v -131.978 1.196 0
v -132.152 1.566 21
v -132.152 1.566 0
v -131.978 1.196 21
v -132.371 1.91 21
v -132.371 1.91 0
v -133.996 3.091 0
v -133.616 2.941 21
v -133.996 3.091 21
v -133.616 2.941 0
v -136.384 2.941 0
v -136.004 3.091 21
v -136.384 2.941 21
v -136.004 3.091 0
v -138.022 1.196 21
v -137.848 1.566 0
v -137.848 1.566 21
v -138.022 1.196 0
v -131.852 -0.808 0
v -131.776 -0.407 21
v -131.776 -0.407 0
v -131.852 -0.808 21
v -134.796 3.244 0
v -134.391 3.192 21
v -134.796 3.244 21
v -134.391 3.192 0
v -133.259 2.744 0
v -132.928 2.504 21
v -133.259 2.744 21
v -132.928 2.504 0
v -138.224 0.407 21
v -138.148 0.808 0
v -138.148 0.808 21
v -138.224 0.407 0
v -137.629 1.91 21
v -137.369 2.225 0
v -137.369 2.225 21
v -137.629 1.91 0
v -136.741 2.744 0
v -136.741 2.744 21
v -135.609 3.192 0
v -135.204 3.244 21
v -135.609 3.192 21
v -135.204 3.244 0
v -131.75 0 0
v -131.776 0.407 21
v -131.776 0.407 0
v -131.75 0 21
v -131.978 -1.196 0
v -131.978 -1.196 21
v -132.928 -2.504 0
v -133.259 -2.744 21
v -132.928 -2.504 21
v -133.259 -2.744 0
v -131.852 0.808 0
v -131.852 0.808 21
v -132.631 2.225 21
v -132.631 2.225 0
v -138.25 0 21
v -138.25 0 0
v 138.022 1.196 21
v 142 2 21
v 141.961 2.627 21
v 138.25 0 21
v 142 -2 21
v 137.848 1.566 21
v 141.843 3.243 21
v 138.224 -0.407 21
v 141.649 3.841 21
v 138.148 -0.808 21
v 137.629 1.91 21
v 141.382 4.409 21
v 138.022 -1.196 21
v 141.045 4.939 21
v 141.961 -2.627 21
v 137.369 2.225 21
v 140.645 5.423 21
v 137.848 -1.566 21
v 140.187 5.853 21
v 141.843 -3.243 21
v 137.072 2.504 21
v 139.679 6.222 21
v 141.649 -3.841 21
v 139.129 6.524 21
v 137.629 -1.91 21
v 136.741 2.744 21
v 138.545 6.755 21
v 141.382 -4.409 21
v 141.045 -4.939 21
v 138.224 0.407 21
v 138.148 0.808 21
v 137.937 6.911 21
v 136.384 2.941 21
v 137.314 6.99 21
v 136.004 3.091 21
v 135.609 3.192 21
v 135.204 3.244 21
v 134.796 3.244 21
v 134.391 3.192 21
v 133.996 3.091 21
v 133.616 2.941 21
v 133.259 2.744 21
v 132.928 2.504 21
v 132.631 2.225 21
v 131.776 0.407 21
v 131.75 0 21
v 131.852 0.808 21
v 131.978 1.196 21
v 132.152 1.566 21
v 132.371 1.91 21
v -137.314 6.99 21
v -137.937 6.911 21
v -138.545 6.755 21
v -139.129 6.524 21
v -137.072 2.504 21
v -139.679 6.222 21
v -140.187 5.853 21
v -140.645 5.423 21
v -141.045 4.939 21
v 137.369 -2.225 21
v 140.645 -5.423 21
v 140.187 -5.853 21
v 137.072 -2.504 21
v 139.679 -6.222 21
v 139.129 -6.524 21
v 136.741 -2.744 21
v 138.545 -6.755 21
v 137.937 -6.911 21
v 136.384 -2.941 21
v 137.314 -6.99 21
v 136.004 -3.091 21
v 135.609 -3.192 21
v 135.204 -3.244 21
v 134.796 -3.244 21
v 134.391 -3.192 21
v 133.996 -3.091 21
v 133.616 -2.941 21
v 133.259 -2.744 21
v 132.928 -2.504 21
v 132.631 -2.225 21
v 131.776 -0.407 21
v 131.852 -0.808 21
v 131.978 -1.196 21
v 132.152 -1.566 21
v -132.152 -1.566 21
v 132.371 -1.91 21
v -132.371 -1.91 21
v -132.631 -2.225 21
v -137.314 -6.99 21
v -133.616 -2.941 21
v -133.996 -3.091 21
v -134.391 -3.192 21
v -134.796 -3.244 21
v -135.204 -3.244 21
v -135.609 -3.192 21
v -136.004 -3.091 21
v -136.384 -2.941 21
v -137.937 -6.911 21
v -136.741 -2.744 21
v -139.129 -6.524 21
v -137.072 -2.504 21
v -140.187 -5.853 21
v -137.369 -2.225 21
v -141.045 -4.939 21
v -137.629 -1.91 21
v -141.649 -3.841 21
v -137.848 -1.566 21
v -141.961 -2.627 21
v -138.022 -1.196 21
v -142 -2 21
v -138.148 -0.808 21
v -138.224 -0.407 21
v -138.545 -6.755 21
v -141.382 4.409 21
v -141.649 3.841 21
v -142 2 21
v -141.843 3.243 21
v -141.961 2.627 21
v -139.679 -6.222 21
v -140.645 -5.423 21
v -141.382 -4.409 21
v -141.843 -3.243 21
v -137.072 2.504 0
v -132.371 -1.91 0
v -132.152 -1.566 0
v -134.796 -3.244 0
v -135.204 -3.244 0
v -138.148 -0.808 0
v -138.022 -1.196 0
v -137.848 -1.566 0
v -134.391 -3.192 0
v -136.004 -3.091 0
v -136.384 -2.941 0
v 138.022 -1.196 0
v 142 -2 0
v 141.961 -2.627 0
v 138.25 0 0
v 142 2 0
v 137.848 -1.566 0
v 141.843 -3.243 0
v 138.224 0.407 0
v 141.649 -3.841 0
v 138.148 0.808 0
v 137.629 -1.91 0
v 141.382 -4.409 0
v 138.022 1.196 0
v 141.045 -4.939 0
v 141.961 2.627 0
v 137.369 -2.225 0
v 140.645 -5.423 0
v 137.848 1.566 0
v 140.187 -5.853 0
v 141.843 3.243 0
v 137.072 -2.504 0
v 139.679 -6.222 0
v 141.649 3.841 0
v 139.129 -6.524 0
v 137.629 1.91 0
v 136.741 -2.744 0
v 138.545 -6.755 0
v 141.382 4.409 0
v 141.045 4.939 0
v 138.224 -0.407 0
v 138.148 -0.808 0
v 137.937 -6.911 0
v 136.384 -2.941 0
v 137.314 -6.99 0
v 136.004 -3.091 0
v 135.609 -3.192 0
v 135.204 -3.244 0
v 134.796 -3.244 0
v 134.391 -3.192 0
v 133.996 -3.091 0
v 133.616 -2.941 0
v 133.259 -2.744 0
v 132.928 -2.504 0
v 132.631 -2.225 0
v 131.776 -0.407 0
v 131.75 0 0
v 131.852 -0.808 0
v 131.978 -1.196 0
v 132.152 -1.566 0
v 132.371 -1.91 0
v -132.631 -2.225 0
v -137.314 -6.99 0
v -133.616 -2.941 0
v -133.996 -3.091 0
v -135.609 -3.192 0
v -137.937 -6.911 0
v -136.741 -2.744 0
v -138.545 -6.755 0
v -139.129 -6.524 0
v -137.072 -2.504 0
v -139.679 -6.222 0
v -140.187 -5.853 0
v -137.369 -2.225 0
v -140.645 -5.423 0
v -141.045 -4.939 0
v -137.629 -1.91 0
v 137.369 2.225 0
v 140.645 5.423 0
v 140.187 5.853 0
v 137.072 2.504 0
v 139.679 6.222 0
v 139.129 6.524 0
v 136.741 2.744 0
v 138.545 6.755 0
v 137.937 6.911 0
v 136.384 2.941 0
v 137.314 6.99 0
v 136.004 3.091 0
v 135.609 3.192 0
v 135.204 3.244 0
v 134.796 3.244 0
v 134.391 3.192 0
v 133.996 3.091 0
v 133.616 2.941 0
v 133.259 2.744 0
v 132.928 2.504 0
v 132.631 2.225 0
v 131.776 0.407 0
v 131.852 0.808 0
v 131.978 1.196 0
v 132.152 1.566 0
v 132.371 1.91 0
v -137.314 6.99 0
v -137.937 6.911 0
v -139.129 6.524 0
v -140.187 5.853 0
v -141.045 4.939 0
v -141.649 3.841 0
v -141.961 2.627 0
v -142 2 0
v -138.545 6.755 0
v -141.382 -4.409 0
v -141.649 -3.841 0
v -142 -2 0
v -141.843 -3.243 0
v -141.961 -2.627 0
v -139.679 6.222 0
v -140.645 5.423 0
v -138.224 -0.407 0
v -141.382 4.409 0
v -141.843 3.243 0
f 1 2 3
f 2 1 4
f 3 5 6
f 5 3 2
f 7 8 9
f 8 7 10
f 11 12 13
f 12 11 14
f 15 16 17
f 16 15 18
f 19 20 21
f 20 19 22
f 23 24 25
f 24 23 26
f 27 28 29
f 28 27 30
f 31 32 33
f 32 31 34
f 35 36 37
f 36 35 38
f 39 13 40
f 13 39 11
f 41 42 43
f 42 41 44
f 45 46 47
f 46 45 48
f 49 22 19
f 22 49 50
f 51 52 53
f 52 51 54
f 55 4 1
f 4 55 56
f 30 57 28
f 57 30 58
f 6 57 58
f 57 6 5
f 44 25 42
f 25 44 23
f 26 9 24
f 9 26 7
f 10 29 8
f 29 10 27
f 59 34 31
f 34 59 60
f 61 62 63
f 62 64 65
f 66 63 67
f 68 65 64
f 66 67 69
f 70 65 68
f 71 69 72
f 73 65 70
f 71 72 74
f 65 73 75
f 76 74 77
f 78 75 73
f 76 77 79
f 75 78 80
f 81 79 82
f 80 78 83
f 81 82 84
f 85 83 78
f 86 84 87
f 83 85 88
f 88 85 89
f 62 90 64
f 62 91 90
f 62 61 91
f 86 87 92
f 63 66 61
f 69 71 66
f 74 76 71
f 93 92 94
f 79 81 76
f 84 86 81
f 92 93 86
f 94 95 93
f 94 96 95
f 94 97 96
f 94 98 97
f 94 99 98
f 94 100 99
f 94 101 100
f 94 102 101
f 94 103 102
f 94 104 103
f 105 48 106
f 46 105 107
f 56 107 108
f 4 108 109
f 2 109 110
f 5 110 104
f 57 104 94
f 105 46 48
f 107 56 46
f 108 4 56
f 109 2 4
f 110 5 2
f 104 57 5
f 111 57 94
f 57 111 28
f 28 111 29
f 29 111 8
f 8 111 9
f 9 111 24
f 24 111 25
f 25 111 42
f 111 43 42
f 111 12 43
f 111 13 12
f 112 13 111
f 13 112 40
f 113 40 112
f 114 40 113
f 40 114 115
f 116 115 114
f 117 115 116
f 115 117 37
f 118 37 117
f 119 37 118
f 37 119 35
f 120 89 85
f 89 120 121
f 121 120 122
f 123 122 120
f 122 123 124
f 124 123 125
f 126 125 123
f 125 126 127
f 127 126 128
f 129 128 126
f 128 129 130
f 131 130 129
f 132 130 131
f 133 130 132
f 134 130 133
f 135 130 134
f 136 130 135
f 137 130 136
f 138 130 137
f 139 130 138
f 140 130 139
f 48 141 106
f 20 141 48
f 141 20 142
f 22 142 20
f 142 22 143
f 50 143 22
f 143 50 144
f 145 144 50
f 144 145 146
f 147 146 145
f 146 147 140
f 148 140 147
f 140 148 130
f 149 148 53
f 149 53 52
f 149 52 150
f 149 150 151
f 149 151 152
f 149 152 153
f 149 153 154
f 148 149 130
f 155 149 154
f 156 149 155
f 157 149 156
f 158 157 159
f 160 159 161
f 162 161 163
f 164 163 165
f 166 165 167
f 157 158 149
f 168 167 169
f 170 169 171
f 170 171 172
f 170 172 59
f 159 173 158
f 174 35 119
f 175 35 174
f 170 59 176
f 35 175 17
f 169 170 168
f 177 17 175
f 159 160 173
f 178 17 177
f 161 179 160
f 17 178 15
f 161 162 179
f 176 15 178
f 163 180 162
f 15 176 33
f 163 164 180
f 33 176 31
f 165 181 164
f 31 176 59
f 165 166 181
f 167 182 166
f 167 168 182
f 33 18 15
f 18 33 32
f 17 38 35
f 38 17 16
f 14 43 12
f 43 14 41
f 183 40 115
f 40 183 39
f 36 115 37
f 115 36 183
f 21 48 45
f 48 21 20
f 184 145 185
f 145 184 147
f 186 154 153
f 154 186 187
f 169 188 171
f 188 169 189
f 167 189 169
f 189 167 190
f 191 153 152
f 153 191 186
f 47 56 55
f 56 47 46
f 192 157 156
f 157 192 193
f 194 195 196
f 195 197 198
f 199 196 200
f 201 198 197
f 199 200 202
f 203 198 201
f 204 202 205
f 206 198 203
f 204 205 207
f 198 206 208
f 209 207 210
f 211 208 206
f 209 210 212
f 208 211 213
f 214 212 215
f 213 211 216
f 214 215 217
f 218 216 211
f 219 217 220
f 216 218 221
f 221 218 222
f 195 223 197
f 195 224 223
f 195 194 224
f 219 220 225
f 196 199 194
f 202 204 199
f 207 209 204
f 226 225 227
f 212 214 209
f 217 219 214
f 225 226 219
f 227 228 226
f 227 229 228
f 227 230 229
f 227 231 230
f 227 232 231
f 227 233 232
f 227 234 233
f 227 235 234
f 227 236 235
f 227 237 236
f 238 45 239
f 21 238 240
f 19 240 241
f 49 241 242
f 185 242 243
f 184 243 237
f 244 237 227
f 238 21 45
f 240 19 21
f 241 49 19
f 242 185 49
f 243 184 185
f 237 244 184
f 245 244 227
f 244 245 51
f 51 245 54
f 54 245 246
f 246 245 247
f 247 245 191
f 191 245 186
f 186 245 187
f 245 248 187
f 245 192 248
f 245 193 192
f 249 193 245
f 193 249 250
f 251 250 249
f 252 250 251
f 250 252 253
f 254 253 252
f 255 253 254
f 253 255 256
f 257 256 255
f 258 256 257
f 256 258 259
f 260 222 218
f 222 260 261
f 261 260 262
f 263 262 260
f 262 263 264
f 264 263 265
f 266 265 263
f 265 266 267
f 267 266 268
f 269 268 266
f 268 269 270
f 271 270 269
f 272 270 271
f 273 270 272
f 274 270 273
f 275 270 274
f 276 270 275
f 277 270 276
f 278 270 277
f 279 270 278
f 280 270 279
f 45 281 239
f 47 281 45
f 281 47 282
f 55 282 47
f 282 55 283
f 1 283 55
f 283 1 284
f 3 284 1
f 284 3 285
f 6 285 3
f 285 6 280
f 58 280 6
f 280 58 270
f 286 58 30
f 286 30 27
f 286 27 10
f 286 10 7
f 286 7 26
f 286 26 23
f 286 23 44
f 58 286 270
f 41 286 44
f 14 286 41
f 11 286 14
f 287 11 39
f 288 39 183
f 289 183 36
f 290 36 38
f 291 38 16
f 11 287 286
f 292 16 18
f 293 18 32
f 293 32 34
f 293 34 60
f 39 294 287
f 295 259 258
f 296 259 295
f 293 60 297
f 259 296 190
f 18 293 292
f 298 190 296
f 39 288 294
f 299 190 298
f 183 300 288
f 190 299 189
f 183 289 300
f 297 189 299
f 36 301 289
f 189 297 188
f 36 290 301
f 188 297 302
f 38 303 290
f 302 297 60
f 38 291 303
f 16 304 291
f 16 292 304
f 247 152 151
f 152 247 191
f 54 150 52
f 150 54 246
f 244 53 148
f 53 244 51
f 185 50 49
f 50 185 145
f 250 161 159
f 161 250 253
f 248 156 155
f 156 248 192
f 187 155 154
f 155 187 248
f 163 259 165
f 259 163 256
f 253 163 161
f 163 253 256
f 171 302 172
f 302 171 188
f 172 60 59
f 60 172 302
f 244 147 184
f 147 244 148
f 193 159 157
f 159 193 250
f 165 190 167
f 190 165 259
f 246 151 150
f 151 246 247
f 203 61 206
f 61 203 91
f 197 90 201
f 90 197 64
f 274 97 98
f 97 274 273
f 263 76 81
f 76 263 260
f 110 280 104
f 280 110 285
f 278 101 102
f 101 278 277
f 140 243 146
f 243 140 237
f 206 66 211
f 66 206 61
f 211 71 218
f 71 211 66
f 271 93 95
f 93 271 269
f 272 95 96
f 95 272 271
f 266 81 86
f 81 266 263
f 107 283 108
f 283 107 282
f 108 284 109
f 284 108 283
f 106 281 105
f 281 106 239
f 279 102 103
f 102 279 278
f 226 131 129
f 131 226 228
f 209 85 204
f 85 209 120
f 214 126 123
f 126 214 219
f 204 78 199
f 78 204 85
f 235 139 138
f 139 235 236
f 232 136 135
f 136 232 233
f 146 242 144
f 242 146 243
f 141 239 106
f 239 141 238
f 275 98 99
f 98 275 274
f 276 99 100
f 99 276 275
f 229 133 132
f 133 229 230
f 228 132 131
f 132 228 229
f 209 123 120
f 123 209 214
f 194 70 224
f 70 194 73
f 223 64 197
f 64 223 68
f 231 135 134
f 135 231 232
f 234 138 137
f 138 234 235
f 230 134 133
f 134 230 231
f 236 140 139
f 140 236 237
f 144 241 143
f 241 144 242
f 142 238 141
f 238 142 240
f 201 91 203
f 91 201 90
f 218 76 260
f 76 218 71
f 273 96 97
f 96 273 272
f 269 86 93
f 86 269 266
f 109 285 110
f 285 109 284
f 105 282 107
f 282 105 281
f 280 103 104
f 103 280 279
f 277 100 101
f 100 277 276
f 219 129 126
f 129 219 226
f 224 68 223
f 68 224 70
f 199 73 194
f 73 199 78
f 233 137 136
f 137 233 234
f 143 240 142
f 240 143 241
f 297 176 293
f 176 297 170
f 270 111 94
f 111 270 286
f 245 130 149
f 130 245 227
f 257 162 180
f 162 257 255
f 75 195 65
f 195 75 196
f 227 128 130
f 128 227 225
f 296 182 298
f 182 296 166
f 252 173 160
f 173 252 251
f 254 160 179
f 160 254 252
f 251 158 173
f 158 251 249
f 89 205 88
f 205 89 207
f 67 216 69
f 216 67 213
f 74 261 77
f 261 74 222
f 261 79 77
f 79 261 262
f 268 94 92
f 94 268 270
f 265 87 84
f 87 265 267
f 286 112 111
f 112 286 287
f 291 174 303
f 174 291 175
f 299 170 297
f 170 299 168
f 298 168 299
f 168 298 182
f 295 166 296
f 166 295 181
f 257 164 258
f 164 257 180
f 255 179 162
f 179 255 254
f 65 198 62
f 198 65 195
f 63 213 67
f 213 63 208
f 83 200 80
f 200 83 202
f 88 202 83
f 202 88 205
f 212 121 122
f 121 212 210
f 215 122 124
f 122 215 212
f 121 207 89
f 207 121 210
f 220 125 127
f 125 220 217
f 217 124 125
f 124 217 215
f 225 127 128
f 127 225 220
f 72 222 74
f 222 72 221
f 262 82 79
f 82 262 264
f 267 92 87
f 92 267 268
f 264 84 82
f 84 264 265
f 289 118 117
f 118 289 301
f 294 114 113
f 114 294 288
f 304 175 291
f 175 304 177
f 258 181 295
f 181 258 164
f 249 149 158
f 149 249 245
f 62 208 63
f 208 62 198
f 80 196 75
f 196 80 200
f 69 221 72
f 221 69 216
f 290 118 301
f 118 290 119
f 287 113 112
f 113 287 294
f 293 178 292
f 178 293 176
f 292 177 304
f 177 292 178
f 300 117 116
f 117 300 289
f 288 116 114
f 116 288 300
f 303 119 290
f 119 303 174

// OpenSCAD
$fn = 50;


difference() {
	union() {
		hull() {
			translate(v = [-137.0000000000, 2.0000000000, 0]) {
				cylinder(h = 21, r = 5);
			}
			translate(v = [137.0000000000, 2.0000000000, 0]) {
				cylinder(h = 21, r = 5);
			}
			translate(v = [-137.0000000000, -2.0000000000, 0]) {
				cylinder(h = 21, r = 5);
			}
			translate(v = [137.0000000000, -2.0000000000, 0]) {
				cylinder(h = 21, r = 5);
			}
		}
	}
	union() {
		translate(v = [-135.0000000000, 0.0000000000, -100.0000000000]) {
			cylinder(h = 200, r = 3.2500000000);
		}
		translate(v = [-135.0000000000, 0.0000000000, -100.0000000000]) {
			cylinder(h = 200, r = 3.2500000000);
		}
		translate(v = [135.0000000000, 0.0000000000, -100.0000000000]) {
			cylinder(h = 200, r = 3.2500000000);
		}
		translate(v = [135.0000000000, 0.0000000000, -100.0000000000]) {
			cylinder(h = 200, r = 3.2500000000);
		}
	}
}
